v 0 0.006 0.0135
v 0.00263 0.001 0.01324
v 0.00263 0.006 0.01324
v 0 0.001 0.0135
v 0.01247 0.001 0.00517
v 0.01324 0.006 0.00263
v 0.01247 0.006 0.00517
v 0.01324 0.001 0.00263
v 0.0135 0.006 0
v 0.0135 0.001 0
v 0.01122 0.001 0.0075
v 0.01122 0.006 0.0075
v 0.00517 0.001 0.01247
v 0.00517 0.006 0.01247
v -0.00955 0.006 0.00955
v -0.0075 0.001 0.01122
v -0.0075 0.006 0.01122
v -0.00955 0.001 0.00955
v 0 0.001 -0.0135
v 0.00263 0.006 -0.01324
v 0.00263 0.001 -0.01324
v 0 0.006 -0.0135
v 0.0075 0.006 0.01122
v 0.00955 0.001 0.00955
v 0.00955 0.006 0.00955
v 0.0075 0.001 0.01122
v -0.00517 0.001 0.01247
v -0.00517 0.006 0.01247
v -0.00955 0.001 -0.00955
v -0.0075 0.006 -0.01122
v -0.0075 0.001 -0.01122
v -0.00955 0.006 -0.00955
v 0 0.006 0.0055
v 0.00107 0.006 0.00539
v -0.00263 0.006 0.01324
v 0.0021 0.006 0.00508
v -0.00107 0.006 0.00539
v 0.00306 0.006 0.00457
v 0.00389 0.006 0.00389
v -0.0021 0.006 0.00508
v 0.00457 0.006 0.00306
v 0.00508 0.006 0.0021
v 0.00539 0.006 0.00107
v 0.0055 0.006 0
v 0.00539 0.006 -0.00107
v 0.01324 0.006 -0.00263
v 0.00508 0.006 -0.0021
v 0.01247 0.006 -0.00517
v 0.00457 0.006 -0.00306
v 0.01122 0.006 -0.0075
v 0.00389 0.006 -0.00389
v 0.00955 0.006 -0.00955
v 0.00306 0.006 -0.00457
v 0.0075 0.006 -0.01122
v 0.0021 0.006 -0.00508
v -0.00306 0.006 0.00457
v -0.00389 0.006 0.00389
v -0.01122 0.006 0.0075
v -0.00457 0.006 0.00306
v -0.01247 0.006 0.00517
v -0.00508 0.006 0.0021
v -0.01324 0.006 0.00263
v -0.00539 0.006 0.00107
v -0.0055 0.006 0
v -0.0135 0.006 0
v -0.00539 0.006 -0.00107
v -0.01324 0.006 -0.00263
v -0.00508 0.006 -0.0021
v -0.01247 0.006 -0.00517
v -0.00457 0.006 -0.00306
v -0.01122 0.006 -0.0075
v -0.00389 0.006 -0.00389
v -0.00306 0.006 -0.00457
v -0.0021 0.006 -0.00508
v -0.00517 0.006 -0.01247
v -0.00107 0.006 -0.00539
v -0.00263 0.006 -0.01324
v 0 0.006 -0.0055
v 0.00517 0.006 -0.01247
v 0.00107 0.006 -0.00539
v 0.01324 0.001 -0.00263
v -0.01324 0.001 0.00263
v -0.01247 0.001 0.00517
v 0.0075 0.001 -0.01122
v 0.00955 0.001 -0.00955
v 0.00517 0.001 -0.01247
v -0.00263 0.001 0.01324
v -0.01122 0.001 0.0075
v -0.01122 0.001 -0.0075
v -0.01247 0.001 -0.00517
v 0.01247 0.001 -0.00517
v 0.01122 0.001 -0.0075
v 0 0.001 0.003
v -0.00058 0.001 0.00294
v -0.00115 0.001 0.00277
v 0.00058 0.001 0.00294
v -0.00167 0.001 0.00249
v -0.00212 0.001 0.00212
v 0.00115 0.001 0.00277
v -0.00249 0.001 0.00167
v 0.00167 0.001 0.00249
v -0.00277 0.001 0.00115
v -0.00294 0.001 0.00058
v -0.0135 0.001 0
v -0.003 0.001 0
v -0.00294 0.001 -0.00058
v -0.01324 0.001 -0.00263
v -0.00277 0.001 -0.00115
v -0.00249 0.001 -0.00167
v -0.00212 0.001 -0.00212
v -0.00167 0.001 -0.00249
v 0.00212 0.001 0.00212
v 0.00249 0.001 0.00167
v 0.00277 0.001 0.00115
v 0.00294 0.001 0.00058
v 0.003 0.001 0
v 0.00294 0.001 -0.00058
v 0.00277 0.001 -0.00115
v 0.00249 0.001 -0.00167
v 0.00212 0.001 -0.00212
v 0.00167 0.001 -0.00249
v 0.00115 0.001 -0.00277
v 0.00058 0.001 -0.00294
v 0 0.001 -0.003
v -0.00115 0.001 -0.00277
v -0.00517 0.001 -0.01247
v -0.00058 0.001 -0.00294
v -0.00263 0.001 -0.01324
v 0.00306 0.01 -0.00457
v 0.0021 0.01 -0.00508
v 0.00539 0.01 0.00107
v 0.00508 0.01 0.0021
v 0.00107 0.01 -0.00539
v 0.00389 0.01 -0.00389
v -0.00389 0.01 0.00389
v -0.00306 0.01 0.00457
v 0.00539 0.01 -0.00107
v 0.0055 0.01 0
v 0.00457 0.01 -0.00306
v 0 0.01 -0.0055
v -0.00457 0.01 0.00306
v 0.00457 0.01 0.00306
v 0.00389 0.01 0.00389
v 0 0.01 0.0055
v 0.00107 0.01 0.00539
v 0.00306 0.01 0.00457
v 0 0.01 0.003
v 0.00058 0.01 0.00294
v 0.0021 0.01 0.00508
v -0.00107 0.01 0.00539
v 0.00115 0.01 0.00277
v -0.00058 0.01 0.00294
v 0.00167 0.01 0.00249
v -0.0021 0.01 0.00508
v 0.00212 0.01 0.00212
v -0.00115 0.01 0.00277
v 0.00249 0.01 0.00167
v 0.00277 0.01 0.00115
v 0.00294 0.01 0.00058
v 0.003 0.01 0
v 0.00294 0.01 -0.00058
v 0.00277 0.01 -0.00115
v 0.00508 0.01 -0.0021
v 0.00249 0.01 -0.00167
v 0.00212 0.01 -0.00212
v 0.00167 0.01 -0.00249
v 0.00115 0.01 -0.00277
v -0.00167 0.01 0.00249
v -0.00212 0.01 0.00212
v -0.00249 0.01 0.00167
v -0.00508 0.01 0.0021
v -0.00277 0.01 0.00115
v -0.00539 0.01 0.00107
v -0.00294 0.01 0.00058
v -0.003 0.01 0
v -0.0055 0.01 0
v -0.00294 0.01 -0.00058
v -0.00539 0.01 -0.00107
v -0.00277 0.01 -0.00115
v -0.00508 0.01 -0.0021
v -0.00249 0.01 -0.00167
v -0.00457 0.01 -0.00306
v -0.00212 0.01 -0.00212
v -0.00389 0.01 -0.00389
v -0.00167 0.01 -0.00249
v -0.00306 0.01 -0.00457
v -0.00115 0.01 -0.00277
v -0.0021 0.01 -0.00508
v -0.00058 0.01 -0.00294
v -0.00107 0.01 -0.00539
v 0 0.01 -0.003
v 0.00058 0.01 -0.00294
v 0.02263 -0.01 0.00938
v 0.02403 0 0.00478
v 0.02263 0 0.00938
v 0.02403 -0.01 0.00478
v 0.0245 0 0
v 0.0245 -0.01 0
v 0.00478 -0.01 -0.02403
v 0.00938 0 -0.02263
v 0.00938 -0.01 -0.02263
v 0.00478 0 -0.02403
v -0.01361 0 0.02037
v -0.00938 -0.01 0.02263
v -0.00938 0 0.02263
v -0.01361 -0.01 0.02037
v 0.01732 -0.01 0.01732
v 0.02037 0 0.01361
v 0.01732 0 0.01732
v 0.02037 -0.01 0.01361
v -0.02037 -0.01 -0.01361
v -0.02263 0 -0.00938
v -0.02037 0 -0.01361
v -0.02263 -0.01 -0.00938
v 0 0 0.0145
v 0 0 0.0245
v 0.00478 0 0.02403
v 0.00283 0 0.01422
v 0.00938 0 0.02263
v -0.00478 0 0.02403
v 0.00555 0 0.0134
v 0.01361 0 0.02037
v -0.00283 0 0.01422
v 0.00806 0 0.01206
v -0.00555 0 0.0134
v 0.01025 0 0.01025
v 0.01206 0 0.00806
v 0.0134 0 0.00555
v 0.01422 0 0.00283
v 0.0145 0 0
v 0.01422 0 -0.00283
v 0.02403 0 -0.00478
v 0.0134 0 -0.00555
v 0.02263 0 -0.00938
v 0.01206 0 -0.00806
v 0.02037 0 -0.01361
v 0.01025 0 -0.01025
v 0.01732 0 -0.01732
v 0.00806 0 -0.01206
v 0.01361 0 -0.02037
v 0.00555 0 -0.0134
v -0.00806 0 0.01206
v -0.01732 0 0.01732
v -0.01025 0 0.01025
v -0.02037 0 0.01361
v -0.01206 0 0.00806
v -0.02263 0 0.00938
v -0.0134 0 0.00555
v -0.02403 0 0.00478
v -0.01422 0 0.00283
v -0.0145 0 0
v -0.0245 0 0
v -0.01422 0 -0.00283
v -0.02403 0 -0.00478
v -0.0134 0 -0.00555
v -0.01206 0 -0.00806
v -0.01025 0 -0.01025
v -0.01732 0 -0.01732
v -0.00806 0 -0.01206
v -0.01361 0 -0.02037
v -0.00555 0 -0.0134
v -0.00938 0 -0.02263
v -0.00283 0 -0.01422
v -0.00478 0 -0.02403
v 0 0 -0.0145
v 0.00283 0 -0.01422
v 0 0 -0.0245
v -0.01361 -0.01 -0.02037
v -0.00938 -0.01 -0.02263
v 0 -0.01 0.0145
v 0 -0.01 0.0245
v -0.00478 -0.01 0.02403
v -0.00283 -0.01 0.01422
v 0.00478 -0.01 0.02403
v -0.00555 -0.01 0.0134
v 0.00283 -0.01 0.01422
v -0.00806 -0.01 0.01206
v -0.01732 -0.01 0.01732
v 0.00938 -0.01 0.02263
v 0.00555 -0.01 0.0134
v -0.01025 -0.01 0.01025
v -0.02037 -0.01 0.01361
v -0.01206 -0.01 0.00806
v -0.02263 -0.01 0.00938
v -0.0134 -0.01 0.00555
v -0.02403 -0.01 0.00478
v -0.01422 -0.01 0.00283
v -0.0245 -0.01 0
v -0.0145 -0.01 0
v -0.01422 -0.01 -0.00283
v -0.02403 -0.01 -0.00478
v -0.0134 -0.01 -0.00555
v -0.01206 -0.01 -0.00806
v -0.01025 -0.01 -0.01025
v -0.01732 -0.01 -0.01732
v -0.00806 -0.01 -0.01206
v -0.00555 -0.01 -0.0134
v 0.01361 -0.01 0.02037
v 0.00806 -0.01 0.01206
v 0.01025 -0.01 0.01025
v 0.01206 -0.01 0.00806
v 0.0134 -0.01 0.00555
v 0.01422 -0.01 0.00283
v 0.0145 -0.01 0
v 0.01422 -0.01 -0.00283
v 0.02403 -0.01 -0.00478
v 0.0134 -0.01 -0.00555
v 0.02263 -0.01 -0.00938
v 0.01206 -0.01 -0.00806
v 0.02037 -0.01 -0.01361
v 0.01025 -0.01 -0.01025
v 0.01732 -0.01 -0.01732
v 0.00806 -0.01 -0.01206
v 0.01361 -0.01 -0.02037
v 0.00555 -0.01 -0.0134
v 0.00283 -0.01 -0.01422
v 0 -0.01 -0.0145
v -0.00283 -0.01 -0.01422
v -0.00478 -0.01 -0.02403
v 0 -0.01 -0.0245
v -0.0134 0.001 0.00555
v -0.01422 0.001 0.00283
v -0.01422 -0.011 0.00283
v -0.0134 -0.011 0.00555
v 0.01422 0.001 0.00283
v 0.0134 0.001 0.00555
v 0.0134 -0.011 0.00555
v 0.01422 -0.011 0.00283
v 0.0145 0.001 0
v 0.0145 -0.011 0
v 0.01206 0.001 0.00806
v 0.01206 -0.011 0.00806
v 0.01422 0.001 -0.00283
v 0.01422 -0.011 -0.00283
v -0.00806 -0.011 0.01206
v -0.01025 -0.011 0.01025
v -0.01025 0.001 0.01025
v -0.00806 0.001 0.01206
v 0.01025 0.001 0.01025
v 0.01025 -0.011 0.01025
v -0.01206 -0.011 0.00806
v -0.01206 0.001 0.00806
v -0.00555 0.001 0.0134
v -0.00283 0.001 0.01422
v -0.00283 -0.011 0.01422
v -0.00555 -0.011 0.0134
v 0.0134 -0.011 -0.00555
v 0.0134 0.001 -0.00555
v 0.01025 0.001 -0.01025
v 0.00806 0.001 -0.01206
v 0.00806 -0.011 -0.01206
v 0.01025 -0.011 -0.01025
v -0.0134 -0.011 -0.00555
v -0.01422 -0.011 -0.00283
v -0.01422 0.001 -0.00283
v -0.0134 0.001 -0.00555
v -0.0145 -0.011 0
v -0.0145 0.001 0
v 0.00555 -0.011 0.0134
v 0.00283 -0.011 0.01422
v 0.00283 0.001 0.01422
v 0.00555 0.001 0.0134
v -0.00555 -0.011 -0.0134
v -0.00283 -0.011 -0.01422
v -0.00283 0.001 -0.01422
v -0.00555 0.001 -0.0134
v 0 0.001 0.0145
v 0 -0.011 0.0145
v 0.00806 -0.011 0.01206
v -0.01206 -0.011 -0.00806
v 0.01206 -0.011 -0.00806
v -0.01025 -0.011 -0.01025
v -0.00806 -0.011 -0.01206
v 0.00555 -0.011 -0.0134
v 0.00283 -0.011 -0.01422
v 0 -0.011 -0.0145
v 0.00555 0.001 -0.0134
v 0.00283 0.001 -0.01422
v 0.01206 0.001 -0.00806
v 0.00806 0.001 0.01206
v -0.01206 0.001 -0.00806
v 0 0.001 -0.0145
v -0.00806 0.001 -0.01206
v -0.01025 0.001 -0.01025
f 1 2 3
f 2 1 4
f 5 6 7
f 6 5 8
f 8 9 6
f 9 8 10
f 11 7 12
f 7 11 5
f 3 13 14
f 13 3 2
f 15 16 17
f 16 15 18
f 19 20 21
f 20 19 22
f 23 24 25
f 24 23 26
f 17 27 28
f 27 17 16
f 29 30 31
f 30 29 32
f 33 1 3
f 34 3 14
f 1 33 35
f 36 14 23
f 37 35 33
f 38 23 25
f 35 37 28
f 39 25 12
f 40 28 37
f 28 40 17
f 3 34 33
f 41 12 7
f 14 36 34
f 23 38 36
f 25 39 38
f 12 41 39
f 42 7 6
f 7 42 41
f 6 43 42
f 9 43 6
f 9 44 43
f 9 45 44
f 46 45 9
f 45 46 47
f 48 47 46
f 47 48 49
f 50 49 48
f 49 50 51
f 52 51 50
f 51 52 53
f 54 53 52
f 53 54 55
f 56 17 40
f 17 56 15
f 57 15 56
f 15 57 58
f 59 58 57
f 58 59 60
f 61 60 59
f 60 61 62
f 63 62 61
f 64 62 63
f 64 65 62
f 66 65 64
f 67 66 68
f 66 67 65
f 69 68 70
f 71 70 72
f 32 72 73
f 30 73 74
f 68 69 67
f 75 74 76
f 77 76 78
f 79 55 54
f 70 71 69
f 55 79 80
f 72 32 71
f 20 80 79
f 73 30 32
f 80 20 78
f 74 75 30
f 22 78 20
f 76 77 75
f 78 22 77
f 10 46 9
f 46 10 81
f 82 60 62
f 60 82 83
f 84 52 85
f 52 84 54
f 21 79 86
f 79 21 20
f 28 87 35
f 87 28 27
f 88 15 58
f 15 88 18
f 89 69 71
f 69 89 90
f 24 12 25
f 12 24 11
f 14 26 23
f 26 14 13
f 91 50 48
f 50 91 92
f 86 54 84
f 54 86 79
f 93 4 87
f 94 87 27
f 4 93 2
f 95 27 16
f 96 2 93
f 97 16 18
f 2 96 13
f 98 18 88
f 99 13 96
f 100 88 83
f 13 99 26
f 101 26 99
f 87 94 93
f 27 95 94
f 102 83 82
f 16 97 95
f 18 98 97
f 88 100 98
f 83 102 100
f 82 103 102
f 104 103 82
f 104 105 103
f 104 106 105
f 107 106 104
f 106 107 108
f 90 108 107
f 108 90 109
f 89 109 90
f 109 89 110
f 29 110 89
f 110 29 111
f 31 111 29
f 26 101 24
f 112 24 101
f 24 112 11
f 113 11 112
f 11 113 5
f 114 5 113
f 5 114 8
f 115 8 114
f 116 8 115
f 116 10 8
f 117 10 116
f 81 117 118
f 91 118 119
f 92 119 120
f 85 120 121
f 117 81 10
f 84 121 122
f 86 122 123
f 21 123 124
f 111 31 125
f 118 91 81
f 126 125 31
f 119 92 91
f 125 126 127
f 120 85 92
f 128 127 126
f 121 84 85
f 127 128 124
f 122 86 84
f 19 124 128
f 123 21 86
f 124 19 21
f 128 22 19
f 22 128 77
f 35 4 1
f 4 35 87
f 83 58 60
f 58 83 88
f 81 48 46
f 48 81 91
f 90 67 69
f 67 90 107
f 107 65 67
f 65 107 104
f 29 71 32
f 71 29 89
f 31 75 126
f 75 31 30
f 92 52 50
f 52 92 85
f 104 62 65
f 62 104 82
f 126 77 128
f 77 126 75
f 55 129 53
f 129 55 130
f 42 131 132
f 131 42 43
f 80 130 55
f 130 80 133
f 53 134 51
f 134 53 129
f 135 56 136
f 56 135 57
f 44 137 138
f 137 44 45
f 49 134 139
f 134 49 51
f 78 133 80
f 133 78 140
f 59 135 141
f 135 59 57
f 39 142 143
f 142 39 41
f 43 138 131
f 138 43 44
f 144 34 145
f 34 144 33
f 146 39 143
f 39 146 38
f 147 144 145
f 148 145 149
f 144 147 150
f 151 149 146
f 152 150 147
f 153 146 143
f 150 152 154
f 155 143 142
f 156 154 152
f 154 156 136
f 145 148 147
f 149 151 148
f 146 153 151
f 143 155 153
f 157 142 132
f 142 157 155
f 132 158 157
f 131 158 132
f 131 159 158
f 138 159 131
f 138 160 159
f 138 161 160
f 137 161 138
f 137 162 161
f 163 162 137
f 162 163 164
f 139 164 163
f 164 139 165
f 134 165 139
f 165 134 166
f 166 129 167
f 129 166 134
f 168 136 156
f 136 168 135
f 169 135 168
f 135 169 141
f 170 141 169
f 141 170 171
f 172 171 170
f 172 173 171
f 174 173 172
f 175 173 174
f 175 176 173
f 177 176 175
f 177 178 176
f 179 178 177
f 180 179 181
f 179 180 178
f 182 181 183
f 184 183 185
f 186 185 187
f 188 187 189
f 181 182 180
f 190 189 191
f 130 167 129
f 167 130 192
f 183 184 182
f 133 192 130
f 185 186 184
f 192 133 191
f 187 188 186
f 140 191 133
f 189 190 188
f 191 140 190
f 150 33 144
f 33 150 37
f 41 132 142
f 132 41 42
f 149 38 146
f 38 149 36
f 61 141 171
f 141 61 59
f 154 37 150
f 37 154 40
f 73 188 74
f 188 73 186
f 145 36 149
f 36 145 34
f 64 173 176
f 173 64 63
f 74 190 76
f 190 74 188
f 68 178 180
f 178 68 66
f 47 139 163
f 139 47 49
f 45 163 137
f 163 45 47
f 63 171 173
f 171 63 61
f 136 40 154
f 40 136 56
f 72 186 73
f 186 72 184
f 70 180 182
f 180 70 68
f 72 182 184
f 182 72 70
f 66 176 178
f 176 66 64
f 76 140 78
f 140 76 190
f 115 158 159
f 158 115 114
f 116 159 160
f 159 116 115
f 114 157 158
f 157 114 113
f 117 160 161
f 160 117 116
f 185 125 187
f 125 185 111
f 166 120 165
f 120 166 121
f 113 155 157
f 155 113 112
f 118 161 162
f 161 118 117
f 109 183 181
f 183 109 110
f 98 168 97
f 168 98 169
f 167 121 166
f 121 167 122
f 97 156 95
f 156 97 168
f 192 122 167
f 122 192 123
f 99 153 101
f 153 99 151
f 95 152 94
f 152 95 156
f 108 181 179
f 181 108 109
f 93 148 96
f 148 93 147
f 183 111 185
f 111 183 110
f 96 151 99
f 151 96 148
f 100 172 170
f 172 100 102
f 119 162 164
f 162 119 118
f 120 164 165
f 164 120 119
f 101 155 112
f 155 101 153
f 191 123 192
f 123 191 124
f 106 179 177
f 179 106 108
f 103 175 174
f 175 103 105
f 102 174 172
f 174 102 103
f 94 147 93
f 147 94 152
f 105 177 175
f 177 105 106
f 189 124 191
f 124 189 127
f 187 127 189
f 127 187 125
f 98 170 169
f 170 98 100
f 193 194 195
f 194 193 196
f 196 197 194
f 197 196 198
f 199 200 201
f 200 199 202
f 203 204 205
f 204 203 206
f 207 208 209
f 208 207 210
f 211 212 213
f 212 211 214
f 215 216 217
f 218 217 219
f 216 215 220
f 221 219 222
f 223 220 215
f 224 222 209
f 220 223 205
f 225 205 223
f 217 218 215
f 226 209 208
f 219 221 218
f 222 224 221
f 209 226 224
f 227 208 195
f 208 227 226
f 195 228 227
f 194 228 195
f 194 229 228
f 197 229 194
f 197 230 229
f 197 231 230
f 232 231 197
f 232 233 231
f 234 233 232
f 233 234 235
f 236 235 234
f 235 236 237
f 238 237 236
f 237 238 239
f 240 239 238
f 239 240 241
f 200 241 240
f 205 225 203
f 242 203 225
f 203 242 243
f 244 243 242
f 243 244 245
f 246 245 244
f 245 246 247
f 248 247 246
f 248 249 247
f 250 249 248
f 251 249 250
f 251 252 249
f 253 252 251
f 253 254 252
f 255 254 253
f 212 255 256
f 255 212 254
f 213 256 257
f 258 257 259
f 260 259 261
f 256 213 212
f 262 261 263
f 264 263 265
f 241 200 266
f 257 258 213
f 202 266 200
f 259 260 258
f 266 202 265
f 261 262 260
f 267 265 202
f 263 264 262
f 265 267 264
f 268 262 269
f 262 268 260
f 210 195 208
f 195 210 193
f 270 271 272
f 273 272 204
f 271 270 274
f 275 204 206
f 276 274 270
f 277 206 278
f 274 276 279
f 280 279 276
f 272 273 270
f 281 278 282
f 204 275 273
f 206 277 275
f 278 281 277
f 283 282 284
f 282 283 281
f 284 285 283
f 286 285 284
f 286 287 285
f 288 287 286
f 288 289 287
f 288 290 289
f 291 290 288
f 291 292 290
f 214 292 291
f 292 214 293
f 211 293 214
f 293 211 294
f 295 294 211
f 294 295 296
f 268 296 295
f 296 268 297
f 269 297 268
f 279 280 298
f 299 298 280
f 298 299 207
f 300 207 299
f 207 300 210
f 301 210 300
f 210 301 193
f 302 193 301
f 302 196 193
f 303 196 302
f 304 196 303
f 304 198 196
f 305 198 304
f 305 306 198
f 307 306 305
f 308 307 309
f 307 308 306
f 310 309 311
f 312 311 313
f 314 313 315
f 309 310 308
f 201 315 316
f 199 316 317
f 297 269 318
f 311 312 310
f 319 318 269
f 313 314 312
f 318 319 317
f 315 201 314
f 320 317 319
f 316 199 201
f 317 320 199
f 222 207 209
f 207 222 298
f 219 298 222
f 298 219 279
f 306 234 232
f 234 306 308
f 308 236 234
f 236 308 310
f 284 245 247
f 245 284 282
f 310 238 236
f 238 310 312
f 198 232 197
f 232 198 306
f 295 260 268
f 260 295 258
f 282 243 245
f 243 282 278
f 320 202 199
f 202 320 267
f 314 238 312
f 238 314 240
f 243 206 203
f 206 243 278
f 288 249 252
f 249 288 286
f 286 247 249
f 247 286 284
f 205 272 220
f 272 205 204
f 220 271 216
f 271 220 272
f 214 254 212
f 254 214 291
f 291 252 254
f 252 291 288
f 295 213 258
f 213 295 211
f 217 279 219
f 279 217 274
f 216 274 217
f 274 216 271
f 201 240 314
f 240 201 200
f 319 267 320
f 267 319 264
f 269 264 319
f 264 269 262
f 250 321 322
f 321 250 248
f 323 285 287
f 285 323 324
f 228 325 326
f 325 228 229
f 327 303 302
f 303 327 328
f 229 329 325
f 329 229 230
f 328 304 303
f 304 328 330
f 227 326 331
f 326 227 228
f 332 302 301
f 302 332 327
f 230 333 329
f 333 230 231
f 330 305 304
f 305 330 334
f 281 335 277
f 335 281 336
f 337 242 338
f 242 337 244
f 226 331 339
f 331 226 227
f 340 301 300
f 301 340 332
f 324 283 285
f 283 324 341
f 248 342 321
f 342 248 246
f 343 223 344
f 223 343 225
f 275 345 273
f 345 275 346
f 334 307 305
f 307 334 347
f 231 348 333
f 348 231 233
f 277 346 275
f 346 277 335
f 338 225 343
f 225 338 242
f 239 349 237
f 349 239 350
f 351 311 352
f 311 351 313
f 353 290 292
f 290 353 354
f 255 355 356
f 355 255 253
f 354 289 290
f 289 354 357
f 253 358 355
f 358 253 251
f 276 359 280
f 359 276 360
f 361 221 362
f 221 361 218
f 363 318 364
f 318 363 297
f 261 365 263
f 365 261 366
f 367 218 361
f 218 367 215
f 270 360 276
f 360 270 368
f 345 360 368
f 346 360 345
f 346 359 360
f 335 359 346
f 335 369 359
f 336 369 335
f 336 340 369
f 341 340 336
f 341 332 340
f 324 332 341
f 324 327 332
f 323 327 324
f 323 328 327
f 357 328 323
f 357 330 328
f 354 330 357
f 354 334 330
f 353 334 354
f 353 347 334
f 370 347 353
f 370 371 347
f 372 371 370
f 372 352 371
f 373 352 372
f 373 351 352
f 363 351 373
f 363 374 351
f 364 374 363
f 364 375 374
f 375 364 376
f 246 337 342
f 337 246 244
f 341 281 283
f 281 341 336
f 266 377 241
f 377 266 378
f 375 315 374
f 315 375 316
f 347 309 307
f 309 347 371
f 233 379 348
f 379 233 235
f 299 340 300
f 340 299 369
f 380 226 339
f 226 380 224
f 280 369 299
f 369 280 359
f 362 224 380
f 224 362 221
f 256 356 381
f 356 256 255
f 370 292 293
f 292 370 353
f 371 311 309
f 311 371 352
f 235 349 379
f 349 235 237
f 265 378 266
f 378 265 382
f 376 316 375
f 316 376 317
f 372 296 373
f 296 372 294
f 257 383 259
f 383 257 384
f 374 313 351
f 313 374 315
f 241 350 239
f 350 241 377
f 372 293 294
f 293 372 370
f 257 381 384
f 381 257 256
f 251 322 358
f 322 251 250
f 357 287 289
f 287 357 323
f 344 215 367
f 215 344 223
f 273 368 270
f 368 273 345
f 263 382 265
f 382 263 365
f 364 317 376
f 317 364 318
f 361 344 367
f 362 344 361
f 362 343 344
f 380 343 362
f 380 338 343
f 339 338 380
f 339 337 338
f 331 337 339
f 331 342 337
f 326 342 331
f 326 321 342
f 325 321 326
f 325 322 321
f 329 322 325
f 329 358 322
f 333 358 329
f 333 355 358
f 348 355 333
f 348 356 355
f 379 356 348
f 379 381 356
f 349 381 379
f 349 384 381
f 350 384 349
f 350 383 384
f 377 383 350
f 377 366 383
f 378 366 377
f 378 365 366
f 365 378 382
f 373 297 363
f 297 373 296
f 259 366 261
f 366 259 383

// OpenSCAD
$fn=32;

rotate([90, 0, 0]) {
    cylinder(h = 0.01, d = 0.049);
    translate([0, 0, -0.001]) {
        cylinder(h = 0.012, d = 0.029);
    }

    translate([0, 0, -0.006]) {
        difference() {
            union() {
                cylinder(h = 0.005, d = 0.027);
                translate([0, 0, -0.004]) {
                    cylinder(h = 0.004, d = 0.011);
                }
            }
            translate([0, 0, -0.01]) {
                cylinder(h = 0.02, d = 0.006);
            }
        }
    }
}
